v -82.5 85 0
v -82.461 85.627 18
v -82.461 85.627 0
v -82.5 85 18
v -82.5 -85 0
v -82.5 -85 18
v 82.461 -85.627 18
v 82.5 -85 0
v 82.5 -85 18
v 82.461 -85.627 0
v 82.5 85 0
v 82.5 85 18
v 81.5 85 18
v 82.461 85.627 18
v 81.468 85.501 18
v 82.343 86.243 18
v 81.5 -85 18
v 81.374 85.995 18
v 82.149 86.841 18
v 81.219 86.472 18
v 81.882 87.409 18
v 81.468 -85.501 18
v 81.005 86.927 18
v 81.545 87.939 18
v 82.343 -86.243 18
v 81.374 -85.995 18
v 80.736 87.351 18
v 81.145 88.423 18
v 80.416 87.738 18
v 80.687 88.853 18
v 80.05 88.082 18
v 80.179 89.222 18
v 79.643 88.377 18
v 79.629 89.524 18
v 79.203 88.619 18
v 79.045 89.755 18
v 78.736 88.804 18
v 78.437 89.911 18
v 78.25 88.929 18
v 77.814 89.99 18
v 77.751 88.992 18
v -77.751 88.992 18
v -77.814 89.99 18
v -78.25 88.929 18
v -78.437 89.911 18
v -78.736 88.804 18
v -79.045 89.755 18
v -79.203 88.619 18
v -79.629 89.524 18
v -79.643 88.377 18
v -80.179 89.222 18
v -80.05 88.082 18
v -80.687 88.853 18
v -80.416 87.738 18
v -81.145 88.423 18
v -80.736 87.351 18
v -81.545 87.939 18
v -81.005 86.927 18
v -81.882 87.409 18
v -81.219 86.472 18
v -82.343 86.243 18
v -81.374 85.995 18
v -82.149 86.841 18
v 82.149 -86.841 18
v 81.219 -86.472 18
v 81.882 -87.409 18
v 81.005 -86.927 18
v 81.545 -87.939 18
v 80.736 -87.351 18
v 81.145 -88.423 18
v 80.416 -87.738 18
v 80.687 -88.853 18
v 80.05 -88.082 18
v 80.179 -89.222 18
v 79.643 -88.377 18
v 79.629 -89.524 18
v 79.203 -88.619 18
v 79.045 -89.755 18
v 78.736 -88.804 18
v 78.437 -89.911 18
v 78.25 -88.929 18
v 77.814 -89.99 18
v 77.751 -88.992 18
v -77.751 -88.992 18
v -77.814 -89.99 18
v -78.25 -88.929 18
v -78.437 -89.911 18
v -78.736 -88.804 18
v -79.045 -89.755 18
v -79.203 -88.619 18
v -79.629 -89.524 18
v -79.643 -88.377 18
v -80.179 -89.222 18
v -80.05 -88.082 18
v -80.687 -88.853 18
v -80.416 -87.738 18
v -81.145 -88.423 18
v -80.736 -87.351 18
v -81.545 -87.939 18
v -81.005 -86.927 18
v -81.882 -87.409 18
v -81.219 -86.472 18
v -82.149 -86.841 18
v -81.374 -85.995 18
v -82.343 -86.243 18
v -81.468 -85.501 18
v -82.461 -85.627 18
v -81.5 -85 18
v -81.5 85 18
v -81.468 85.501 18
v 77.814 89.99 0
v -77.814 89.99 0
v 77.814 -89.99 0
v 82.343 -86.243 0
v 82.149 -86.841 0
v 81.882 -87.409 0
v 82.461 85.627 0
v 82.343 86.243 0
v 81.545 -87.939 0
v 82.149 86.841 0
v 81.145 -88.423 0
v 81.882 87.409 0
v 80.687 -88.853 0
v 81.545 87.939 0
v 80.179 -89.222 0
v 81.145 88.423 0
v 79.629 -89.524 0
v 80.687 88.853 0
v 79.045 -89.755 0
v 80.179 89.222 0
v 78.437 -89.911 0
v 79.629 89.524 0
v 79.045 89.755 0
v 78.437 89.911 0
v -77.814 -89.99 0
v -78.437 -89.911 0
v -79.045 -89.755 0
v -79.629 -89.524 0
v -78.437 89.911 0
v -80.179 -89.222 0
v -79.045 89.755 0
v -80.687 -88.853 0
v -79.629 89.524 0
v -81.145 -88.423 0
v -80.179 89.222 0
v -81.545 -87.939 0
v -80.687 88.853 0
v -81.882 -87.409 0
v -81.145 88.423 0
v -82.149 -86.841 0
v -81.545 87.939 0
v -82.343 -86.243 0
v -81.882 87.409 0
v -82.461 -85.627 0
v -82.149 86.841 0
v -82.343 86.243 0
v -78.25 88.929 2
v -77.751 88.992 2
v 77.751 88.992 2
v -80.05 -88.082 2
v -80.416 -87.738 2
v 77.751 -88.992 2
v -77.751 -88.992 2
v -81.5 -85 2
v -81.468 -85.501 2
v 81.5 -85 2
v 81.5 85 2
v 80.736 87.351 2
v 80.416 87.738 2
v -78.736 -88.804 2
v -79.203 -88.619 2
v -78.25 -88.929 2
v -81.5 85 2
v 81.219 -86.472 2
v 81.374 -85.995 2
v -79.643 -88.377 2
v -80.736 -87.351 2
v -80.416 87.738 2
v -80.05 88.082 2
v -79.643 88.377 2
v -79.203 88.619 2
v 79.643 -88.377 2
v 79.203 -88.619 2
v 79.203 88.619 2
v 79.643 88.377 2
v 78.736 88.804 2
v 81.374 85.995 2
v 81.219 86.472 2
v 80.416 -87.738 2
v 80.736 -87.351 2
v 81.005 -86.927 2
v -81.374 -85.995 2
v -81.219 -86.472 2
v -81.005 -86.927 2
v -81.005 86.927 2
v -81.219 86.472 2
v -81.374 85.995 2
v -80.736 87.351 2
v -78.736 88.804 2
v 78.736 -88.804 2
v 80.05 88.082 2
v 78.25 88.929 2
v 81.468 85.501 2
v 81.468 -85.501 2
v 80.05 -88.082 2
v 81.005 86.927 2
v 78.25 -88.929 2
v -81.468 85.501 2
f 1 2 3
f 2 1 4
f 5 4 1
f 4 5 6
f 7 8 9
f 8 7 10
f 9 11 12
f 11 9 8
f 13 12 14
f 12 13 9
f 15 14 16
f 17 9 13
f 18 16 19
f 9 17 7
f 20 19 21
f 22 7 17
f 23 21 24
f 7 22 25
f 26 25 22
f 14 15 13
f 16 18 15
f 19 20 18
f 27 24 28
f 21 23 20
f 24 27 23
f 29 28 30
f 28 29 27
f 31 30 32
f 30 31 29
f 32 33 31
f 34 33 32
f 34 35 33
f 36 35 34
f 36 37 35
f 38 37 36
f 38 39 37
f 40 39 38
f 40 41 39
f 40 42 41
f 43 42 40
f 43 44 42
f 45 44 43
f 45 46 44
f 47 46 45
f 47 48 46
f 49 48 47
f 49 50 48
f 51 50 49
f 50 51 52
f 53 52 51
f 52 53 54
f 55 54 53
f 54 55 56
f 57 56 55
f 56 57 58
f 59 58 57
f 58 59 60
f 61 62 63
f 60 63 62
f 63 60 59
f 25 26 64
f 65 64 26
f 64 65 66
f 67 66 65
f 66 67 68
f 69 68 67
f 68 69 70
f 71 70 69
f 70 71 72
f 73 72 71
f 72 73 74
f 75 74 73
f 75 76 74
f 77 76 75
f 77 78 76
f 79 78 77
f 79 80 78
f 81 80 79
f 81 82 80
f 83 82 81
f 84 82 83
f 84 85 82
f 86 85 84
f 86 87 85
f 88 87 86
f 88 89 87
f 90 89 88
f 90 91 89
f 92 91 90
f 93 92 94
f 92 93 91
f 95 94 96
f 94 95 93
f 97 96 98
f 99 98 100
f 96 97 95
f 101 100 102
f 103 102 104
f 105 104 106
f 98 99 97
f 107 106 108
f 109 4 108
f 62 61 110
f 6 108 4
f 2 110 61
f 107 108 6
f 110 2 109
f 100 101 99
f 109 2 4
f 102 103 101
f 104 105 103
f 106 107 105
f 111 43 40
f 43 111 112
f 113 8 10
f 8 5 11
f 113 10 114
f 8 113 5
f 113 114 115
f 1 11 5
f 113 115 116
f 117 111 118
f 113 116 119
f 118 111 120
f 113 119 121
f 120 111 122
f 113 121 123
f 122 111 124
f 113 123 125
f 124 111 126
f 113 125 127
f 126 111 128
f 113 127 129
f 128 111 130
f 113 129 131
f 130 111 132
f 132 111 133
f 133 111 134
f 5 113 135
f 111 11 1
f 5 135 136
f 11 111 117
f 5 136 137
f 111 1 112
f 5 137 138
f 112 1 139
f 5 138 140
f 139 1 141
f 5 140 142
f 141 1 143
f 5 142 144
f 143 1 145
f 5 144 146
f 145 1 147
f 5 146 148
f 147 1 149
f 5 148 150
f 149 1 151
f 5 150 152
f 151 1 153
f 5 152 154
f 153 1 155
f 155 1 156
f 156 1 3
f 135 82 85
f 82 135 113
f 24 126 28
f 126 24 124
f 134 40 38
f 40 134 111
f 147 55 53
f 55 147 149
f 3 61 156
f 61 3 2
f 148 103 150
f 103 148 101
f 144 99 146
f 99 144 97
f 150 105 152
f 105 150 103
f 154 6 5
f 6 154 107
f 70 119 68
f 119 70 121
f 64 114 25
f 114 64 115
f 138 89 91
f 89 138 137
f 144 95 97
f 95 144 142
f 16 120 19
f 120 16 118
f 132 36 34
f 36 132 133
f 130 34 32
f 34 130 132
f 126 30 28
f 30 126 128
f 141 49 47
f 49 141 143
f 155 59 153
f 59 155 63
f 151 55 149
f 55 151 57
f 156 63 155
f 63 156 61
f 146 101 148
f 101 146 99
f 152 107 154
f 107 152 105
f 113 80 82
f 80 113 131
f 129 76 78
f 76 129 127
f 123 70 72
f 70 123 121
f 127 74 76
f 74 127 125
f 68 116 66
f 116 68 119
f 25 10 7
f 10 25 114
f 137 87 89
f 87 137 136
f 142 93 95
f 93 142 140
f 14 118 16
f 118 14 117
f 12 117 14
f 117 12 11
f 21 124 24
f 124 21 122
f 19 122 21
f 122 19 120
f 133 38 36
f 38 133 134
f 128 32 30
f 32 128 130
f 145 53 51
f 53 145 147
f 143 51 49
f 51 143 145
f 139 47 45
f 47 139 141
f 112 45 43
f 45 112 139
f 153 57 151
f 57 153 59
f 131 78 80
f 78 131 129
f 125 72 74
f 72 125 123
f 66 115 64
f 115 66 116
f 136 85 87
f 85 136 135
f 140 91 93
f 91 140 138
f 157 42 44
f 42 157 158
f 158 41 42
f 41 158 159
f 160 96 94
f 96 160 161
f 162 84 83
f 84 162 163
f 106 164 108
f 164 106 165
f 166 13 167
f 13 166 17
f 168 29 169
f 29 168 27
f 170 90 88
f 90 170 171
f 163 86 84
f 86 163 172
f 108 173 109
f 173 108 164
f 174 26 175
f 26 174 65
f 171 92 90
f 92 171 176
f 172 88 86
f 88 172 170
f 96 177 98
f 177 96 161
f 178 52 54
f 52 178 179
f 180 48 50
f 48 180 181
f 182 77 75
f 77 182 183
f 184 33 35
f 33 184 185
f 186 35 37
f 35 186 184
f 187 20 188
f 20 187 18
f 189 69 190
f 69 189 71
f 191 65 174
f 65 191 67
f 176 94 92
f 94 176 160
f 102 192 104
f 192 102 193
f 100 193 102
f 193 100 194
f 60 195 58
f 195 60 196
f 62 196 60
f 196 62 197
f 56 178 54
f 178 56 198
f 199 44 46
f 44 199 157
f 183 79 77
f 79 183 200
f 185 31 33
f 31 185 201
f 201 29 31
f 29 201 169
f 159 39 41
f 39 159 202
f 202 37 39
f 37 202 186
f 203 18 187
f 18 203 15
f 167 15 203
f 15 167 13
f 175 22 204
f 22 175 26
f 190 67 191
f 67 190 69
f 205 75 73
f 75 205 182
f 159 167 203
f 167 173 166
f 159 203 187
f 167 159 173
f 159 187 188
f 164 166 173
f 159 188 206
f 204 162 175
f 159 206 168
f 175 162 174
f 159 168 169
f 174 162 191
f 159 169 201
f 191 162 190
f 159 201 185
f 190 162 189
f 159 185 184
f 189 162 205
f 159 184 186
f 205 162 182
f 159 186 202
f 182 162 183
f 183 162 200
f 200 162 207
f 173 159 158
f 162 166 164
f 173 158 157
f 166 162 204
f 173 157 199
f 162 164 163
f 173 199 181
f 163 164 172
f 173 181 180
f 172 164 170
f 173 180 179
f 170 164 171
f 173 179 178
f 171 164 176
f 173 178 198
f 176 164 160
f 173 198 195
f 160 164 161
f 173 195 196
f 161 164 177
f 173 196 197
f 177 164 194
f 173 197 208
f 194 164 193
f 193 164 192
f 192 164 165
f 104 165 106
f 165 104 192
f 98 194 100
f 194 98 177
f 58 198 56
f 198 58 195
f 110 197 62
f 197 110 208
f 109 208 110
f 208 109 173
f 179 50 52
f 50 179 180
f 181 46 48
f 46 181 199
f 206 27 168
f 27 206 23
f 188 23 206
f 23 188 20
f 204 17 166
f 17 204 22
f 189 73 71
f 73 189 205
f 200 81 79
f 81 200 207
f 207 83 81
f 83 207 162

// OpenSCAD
$fn = 50;


difference() {
	union() {
		hull() {
			translate(v = [-77.5000000000, 85.0000000000, 0]) {
				cylinder(h = 18, r = 5);
			}
			translate(v = [77.5000000000, 85.0000000000, 0]) {
				cylinder(h = 18, r = 5);
			}
			translate(v = [-77.5000000000, -85.0000000000, 0]) {
				cylinder(h = 18, r = 5);
			}
			translate(v = [77.5000000000, -85.0000000000, 0]) {
				cylinder(h = 18, r = 5);
			}
		}
	}
	union() {
		translate(v = [0, 0, 2]) {
			hull() {
				translate(v = [-77.5000000000, 85.0000000000, 0]) {
					cylinder(h = 16, r = 4);
				}
				translate(v = [77.5000000000, 85.0000000000, 0]) {
					cylinder(h = 16, r = 4);
				}
				translate(v = [-77.5000000000, -85.0000000000, 0]) {
					cylinder(h = 16, r = 4);
				}
				translate(v = [77.5000000000, -85.0000000000, 0]) {
					cylinder(h = 16, r = 4);
				}
			}
		}
	}
}
